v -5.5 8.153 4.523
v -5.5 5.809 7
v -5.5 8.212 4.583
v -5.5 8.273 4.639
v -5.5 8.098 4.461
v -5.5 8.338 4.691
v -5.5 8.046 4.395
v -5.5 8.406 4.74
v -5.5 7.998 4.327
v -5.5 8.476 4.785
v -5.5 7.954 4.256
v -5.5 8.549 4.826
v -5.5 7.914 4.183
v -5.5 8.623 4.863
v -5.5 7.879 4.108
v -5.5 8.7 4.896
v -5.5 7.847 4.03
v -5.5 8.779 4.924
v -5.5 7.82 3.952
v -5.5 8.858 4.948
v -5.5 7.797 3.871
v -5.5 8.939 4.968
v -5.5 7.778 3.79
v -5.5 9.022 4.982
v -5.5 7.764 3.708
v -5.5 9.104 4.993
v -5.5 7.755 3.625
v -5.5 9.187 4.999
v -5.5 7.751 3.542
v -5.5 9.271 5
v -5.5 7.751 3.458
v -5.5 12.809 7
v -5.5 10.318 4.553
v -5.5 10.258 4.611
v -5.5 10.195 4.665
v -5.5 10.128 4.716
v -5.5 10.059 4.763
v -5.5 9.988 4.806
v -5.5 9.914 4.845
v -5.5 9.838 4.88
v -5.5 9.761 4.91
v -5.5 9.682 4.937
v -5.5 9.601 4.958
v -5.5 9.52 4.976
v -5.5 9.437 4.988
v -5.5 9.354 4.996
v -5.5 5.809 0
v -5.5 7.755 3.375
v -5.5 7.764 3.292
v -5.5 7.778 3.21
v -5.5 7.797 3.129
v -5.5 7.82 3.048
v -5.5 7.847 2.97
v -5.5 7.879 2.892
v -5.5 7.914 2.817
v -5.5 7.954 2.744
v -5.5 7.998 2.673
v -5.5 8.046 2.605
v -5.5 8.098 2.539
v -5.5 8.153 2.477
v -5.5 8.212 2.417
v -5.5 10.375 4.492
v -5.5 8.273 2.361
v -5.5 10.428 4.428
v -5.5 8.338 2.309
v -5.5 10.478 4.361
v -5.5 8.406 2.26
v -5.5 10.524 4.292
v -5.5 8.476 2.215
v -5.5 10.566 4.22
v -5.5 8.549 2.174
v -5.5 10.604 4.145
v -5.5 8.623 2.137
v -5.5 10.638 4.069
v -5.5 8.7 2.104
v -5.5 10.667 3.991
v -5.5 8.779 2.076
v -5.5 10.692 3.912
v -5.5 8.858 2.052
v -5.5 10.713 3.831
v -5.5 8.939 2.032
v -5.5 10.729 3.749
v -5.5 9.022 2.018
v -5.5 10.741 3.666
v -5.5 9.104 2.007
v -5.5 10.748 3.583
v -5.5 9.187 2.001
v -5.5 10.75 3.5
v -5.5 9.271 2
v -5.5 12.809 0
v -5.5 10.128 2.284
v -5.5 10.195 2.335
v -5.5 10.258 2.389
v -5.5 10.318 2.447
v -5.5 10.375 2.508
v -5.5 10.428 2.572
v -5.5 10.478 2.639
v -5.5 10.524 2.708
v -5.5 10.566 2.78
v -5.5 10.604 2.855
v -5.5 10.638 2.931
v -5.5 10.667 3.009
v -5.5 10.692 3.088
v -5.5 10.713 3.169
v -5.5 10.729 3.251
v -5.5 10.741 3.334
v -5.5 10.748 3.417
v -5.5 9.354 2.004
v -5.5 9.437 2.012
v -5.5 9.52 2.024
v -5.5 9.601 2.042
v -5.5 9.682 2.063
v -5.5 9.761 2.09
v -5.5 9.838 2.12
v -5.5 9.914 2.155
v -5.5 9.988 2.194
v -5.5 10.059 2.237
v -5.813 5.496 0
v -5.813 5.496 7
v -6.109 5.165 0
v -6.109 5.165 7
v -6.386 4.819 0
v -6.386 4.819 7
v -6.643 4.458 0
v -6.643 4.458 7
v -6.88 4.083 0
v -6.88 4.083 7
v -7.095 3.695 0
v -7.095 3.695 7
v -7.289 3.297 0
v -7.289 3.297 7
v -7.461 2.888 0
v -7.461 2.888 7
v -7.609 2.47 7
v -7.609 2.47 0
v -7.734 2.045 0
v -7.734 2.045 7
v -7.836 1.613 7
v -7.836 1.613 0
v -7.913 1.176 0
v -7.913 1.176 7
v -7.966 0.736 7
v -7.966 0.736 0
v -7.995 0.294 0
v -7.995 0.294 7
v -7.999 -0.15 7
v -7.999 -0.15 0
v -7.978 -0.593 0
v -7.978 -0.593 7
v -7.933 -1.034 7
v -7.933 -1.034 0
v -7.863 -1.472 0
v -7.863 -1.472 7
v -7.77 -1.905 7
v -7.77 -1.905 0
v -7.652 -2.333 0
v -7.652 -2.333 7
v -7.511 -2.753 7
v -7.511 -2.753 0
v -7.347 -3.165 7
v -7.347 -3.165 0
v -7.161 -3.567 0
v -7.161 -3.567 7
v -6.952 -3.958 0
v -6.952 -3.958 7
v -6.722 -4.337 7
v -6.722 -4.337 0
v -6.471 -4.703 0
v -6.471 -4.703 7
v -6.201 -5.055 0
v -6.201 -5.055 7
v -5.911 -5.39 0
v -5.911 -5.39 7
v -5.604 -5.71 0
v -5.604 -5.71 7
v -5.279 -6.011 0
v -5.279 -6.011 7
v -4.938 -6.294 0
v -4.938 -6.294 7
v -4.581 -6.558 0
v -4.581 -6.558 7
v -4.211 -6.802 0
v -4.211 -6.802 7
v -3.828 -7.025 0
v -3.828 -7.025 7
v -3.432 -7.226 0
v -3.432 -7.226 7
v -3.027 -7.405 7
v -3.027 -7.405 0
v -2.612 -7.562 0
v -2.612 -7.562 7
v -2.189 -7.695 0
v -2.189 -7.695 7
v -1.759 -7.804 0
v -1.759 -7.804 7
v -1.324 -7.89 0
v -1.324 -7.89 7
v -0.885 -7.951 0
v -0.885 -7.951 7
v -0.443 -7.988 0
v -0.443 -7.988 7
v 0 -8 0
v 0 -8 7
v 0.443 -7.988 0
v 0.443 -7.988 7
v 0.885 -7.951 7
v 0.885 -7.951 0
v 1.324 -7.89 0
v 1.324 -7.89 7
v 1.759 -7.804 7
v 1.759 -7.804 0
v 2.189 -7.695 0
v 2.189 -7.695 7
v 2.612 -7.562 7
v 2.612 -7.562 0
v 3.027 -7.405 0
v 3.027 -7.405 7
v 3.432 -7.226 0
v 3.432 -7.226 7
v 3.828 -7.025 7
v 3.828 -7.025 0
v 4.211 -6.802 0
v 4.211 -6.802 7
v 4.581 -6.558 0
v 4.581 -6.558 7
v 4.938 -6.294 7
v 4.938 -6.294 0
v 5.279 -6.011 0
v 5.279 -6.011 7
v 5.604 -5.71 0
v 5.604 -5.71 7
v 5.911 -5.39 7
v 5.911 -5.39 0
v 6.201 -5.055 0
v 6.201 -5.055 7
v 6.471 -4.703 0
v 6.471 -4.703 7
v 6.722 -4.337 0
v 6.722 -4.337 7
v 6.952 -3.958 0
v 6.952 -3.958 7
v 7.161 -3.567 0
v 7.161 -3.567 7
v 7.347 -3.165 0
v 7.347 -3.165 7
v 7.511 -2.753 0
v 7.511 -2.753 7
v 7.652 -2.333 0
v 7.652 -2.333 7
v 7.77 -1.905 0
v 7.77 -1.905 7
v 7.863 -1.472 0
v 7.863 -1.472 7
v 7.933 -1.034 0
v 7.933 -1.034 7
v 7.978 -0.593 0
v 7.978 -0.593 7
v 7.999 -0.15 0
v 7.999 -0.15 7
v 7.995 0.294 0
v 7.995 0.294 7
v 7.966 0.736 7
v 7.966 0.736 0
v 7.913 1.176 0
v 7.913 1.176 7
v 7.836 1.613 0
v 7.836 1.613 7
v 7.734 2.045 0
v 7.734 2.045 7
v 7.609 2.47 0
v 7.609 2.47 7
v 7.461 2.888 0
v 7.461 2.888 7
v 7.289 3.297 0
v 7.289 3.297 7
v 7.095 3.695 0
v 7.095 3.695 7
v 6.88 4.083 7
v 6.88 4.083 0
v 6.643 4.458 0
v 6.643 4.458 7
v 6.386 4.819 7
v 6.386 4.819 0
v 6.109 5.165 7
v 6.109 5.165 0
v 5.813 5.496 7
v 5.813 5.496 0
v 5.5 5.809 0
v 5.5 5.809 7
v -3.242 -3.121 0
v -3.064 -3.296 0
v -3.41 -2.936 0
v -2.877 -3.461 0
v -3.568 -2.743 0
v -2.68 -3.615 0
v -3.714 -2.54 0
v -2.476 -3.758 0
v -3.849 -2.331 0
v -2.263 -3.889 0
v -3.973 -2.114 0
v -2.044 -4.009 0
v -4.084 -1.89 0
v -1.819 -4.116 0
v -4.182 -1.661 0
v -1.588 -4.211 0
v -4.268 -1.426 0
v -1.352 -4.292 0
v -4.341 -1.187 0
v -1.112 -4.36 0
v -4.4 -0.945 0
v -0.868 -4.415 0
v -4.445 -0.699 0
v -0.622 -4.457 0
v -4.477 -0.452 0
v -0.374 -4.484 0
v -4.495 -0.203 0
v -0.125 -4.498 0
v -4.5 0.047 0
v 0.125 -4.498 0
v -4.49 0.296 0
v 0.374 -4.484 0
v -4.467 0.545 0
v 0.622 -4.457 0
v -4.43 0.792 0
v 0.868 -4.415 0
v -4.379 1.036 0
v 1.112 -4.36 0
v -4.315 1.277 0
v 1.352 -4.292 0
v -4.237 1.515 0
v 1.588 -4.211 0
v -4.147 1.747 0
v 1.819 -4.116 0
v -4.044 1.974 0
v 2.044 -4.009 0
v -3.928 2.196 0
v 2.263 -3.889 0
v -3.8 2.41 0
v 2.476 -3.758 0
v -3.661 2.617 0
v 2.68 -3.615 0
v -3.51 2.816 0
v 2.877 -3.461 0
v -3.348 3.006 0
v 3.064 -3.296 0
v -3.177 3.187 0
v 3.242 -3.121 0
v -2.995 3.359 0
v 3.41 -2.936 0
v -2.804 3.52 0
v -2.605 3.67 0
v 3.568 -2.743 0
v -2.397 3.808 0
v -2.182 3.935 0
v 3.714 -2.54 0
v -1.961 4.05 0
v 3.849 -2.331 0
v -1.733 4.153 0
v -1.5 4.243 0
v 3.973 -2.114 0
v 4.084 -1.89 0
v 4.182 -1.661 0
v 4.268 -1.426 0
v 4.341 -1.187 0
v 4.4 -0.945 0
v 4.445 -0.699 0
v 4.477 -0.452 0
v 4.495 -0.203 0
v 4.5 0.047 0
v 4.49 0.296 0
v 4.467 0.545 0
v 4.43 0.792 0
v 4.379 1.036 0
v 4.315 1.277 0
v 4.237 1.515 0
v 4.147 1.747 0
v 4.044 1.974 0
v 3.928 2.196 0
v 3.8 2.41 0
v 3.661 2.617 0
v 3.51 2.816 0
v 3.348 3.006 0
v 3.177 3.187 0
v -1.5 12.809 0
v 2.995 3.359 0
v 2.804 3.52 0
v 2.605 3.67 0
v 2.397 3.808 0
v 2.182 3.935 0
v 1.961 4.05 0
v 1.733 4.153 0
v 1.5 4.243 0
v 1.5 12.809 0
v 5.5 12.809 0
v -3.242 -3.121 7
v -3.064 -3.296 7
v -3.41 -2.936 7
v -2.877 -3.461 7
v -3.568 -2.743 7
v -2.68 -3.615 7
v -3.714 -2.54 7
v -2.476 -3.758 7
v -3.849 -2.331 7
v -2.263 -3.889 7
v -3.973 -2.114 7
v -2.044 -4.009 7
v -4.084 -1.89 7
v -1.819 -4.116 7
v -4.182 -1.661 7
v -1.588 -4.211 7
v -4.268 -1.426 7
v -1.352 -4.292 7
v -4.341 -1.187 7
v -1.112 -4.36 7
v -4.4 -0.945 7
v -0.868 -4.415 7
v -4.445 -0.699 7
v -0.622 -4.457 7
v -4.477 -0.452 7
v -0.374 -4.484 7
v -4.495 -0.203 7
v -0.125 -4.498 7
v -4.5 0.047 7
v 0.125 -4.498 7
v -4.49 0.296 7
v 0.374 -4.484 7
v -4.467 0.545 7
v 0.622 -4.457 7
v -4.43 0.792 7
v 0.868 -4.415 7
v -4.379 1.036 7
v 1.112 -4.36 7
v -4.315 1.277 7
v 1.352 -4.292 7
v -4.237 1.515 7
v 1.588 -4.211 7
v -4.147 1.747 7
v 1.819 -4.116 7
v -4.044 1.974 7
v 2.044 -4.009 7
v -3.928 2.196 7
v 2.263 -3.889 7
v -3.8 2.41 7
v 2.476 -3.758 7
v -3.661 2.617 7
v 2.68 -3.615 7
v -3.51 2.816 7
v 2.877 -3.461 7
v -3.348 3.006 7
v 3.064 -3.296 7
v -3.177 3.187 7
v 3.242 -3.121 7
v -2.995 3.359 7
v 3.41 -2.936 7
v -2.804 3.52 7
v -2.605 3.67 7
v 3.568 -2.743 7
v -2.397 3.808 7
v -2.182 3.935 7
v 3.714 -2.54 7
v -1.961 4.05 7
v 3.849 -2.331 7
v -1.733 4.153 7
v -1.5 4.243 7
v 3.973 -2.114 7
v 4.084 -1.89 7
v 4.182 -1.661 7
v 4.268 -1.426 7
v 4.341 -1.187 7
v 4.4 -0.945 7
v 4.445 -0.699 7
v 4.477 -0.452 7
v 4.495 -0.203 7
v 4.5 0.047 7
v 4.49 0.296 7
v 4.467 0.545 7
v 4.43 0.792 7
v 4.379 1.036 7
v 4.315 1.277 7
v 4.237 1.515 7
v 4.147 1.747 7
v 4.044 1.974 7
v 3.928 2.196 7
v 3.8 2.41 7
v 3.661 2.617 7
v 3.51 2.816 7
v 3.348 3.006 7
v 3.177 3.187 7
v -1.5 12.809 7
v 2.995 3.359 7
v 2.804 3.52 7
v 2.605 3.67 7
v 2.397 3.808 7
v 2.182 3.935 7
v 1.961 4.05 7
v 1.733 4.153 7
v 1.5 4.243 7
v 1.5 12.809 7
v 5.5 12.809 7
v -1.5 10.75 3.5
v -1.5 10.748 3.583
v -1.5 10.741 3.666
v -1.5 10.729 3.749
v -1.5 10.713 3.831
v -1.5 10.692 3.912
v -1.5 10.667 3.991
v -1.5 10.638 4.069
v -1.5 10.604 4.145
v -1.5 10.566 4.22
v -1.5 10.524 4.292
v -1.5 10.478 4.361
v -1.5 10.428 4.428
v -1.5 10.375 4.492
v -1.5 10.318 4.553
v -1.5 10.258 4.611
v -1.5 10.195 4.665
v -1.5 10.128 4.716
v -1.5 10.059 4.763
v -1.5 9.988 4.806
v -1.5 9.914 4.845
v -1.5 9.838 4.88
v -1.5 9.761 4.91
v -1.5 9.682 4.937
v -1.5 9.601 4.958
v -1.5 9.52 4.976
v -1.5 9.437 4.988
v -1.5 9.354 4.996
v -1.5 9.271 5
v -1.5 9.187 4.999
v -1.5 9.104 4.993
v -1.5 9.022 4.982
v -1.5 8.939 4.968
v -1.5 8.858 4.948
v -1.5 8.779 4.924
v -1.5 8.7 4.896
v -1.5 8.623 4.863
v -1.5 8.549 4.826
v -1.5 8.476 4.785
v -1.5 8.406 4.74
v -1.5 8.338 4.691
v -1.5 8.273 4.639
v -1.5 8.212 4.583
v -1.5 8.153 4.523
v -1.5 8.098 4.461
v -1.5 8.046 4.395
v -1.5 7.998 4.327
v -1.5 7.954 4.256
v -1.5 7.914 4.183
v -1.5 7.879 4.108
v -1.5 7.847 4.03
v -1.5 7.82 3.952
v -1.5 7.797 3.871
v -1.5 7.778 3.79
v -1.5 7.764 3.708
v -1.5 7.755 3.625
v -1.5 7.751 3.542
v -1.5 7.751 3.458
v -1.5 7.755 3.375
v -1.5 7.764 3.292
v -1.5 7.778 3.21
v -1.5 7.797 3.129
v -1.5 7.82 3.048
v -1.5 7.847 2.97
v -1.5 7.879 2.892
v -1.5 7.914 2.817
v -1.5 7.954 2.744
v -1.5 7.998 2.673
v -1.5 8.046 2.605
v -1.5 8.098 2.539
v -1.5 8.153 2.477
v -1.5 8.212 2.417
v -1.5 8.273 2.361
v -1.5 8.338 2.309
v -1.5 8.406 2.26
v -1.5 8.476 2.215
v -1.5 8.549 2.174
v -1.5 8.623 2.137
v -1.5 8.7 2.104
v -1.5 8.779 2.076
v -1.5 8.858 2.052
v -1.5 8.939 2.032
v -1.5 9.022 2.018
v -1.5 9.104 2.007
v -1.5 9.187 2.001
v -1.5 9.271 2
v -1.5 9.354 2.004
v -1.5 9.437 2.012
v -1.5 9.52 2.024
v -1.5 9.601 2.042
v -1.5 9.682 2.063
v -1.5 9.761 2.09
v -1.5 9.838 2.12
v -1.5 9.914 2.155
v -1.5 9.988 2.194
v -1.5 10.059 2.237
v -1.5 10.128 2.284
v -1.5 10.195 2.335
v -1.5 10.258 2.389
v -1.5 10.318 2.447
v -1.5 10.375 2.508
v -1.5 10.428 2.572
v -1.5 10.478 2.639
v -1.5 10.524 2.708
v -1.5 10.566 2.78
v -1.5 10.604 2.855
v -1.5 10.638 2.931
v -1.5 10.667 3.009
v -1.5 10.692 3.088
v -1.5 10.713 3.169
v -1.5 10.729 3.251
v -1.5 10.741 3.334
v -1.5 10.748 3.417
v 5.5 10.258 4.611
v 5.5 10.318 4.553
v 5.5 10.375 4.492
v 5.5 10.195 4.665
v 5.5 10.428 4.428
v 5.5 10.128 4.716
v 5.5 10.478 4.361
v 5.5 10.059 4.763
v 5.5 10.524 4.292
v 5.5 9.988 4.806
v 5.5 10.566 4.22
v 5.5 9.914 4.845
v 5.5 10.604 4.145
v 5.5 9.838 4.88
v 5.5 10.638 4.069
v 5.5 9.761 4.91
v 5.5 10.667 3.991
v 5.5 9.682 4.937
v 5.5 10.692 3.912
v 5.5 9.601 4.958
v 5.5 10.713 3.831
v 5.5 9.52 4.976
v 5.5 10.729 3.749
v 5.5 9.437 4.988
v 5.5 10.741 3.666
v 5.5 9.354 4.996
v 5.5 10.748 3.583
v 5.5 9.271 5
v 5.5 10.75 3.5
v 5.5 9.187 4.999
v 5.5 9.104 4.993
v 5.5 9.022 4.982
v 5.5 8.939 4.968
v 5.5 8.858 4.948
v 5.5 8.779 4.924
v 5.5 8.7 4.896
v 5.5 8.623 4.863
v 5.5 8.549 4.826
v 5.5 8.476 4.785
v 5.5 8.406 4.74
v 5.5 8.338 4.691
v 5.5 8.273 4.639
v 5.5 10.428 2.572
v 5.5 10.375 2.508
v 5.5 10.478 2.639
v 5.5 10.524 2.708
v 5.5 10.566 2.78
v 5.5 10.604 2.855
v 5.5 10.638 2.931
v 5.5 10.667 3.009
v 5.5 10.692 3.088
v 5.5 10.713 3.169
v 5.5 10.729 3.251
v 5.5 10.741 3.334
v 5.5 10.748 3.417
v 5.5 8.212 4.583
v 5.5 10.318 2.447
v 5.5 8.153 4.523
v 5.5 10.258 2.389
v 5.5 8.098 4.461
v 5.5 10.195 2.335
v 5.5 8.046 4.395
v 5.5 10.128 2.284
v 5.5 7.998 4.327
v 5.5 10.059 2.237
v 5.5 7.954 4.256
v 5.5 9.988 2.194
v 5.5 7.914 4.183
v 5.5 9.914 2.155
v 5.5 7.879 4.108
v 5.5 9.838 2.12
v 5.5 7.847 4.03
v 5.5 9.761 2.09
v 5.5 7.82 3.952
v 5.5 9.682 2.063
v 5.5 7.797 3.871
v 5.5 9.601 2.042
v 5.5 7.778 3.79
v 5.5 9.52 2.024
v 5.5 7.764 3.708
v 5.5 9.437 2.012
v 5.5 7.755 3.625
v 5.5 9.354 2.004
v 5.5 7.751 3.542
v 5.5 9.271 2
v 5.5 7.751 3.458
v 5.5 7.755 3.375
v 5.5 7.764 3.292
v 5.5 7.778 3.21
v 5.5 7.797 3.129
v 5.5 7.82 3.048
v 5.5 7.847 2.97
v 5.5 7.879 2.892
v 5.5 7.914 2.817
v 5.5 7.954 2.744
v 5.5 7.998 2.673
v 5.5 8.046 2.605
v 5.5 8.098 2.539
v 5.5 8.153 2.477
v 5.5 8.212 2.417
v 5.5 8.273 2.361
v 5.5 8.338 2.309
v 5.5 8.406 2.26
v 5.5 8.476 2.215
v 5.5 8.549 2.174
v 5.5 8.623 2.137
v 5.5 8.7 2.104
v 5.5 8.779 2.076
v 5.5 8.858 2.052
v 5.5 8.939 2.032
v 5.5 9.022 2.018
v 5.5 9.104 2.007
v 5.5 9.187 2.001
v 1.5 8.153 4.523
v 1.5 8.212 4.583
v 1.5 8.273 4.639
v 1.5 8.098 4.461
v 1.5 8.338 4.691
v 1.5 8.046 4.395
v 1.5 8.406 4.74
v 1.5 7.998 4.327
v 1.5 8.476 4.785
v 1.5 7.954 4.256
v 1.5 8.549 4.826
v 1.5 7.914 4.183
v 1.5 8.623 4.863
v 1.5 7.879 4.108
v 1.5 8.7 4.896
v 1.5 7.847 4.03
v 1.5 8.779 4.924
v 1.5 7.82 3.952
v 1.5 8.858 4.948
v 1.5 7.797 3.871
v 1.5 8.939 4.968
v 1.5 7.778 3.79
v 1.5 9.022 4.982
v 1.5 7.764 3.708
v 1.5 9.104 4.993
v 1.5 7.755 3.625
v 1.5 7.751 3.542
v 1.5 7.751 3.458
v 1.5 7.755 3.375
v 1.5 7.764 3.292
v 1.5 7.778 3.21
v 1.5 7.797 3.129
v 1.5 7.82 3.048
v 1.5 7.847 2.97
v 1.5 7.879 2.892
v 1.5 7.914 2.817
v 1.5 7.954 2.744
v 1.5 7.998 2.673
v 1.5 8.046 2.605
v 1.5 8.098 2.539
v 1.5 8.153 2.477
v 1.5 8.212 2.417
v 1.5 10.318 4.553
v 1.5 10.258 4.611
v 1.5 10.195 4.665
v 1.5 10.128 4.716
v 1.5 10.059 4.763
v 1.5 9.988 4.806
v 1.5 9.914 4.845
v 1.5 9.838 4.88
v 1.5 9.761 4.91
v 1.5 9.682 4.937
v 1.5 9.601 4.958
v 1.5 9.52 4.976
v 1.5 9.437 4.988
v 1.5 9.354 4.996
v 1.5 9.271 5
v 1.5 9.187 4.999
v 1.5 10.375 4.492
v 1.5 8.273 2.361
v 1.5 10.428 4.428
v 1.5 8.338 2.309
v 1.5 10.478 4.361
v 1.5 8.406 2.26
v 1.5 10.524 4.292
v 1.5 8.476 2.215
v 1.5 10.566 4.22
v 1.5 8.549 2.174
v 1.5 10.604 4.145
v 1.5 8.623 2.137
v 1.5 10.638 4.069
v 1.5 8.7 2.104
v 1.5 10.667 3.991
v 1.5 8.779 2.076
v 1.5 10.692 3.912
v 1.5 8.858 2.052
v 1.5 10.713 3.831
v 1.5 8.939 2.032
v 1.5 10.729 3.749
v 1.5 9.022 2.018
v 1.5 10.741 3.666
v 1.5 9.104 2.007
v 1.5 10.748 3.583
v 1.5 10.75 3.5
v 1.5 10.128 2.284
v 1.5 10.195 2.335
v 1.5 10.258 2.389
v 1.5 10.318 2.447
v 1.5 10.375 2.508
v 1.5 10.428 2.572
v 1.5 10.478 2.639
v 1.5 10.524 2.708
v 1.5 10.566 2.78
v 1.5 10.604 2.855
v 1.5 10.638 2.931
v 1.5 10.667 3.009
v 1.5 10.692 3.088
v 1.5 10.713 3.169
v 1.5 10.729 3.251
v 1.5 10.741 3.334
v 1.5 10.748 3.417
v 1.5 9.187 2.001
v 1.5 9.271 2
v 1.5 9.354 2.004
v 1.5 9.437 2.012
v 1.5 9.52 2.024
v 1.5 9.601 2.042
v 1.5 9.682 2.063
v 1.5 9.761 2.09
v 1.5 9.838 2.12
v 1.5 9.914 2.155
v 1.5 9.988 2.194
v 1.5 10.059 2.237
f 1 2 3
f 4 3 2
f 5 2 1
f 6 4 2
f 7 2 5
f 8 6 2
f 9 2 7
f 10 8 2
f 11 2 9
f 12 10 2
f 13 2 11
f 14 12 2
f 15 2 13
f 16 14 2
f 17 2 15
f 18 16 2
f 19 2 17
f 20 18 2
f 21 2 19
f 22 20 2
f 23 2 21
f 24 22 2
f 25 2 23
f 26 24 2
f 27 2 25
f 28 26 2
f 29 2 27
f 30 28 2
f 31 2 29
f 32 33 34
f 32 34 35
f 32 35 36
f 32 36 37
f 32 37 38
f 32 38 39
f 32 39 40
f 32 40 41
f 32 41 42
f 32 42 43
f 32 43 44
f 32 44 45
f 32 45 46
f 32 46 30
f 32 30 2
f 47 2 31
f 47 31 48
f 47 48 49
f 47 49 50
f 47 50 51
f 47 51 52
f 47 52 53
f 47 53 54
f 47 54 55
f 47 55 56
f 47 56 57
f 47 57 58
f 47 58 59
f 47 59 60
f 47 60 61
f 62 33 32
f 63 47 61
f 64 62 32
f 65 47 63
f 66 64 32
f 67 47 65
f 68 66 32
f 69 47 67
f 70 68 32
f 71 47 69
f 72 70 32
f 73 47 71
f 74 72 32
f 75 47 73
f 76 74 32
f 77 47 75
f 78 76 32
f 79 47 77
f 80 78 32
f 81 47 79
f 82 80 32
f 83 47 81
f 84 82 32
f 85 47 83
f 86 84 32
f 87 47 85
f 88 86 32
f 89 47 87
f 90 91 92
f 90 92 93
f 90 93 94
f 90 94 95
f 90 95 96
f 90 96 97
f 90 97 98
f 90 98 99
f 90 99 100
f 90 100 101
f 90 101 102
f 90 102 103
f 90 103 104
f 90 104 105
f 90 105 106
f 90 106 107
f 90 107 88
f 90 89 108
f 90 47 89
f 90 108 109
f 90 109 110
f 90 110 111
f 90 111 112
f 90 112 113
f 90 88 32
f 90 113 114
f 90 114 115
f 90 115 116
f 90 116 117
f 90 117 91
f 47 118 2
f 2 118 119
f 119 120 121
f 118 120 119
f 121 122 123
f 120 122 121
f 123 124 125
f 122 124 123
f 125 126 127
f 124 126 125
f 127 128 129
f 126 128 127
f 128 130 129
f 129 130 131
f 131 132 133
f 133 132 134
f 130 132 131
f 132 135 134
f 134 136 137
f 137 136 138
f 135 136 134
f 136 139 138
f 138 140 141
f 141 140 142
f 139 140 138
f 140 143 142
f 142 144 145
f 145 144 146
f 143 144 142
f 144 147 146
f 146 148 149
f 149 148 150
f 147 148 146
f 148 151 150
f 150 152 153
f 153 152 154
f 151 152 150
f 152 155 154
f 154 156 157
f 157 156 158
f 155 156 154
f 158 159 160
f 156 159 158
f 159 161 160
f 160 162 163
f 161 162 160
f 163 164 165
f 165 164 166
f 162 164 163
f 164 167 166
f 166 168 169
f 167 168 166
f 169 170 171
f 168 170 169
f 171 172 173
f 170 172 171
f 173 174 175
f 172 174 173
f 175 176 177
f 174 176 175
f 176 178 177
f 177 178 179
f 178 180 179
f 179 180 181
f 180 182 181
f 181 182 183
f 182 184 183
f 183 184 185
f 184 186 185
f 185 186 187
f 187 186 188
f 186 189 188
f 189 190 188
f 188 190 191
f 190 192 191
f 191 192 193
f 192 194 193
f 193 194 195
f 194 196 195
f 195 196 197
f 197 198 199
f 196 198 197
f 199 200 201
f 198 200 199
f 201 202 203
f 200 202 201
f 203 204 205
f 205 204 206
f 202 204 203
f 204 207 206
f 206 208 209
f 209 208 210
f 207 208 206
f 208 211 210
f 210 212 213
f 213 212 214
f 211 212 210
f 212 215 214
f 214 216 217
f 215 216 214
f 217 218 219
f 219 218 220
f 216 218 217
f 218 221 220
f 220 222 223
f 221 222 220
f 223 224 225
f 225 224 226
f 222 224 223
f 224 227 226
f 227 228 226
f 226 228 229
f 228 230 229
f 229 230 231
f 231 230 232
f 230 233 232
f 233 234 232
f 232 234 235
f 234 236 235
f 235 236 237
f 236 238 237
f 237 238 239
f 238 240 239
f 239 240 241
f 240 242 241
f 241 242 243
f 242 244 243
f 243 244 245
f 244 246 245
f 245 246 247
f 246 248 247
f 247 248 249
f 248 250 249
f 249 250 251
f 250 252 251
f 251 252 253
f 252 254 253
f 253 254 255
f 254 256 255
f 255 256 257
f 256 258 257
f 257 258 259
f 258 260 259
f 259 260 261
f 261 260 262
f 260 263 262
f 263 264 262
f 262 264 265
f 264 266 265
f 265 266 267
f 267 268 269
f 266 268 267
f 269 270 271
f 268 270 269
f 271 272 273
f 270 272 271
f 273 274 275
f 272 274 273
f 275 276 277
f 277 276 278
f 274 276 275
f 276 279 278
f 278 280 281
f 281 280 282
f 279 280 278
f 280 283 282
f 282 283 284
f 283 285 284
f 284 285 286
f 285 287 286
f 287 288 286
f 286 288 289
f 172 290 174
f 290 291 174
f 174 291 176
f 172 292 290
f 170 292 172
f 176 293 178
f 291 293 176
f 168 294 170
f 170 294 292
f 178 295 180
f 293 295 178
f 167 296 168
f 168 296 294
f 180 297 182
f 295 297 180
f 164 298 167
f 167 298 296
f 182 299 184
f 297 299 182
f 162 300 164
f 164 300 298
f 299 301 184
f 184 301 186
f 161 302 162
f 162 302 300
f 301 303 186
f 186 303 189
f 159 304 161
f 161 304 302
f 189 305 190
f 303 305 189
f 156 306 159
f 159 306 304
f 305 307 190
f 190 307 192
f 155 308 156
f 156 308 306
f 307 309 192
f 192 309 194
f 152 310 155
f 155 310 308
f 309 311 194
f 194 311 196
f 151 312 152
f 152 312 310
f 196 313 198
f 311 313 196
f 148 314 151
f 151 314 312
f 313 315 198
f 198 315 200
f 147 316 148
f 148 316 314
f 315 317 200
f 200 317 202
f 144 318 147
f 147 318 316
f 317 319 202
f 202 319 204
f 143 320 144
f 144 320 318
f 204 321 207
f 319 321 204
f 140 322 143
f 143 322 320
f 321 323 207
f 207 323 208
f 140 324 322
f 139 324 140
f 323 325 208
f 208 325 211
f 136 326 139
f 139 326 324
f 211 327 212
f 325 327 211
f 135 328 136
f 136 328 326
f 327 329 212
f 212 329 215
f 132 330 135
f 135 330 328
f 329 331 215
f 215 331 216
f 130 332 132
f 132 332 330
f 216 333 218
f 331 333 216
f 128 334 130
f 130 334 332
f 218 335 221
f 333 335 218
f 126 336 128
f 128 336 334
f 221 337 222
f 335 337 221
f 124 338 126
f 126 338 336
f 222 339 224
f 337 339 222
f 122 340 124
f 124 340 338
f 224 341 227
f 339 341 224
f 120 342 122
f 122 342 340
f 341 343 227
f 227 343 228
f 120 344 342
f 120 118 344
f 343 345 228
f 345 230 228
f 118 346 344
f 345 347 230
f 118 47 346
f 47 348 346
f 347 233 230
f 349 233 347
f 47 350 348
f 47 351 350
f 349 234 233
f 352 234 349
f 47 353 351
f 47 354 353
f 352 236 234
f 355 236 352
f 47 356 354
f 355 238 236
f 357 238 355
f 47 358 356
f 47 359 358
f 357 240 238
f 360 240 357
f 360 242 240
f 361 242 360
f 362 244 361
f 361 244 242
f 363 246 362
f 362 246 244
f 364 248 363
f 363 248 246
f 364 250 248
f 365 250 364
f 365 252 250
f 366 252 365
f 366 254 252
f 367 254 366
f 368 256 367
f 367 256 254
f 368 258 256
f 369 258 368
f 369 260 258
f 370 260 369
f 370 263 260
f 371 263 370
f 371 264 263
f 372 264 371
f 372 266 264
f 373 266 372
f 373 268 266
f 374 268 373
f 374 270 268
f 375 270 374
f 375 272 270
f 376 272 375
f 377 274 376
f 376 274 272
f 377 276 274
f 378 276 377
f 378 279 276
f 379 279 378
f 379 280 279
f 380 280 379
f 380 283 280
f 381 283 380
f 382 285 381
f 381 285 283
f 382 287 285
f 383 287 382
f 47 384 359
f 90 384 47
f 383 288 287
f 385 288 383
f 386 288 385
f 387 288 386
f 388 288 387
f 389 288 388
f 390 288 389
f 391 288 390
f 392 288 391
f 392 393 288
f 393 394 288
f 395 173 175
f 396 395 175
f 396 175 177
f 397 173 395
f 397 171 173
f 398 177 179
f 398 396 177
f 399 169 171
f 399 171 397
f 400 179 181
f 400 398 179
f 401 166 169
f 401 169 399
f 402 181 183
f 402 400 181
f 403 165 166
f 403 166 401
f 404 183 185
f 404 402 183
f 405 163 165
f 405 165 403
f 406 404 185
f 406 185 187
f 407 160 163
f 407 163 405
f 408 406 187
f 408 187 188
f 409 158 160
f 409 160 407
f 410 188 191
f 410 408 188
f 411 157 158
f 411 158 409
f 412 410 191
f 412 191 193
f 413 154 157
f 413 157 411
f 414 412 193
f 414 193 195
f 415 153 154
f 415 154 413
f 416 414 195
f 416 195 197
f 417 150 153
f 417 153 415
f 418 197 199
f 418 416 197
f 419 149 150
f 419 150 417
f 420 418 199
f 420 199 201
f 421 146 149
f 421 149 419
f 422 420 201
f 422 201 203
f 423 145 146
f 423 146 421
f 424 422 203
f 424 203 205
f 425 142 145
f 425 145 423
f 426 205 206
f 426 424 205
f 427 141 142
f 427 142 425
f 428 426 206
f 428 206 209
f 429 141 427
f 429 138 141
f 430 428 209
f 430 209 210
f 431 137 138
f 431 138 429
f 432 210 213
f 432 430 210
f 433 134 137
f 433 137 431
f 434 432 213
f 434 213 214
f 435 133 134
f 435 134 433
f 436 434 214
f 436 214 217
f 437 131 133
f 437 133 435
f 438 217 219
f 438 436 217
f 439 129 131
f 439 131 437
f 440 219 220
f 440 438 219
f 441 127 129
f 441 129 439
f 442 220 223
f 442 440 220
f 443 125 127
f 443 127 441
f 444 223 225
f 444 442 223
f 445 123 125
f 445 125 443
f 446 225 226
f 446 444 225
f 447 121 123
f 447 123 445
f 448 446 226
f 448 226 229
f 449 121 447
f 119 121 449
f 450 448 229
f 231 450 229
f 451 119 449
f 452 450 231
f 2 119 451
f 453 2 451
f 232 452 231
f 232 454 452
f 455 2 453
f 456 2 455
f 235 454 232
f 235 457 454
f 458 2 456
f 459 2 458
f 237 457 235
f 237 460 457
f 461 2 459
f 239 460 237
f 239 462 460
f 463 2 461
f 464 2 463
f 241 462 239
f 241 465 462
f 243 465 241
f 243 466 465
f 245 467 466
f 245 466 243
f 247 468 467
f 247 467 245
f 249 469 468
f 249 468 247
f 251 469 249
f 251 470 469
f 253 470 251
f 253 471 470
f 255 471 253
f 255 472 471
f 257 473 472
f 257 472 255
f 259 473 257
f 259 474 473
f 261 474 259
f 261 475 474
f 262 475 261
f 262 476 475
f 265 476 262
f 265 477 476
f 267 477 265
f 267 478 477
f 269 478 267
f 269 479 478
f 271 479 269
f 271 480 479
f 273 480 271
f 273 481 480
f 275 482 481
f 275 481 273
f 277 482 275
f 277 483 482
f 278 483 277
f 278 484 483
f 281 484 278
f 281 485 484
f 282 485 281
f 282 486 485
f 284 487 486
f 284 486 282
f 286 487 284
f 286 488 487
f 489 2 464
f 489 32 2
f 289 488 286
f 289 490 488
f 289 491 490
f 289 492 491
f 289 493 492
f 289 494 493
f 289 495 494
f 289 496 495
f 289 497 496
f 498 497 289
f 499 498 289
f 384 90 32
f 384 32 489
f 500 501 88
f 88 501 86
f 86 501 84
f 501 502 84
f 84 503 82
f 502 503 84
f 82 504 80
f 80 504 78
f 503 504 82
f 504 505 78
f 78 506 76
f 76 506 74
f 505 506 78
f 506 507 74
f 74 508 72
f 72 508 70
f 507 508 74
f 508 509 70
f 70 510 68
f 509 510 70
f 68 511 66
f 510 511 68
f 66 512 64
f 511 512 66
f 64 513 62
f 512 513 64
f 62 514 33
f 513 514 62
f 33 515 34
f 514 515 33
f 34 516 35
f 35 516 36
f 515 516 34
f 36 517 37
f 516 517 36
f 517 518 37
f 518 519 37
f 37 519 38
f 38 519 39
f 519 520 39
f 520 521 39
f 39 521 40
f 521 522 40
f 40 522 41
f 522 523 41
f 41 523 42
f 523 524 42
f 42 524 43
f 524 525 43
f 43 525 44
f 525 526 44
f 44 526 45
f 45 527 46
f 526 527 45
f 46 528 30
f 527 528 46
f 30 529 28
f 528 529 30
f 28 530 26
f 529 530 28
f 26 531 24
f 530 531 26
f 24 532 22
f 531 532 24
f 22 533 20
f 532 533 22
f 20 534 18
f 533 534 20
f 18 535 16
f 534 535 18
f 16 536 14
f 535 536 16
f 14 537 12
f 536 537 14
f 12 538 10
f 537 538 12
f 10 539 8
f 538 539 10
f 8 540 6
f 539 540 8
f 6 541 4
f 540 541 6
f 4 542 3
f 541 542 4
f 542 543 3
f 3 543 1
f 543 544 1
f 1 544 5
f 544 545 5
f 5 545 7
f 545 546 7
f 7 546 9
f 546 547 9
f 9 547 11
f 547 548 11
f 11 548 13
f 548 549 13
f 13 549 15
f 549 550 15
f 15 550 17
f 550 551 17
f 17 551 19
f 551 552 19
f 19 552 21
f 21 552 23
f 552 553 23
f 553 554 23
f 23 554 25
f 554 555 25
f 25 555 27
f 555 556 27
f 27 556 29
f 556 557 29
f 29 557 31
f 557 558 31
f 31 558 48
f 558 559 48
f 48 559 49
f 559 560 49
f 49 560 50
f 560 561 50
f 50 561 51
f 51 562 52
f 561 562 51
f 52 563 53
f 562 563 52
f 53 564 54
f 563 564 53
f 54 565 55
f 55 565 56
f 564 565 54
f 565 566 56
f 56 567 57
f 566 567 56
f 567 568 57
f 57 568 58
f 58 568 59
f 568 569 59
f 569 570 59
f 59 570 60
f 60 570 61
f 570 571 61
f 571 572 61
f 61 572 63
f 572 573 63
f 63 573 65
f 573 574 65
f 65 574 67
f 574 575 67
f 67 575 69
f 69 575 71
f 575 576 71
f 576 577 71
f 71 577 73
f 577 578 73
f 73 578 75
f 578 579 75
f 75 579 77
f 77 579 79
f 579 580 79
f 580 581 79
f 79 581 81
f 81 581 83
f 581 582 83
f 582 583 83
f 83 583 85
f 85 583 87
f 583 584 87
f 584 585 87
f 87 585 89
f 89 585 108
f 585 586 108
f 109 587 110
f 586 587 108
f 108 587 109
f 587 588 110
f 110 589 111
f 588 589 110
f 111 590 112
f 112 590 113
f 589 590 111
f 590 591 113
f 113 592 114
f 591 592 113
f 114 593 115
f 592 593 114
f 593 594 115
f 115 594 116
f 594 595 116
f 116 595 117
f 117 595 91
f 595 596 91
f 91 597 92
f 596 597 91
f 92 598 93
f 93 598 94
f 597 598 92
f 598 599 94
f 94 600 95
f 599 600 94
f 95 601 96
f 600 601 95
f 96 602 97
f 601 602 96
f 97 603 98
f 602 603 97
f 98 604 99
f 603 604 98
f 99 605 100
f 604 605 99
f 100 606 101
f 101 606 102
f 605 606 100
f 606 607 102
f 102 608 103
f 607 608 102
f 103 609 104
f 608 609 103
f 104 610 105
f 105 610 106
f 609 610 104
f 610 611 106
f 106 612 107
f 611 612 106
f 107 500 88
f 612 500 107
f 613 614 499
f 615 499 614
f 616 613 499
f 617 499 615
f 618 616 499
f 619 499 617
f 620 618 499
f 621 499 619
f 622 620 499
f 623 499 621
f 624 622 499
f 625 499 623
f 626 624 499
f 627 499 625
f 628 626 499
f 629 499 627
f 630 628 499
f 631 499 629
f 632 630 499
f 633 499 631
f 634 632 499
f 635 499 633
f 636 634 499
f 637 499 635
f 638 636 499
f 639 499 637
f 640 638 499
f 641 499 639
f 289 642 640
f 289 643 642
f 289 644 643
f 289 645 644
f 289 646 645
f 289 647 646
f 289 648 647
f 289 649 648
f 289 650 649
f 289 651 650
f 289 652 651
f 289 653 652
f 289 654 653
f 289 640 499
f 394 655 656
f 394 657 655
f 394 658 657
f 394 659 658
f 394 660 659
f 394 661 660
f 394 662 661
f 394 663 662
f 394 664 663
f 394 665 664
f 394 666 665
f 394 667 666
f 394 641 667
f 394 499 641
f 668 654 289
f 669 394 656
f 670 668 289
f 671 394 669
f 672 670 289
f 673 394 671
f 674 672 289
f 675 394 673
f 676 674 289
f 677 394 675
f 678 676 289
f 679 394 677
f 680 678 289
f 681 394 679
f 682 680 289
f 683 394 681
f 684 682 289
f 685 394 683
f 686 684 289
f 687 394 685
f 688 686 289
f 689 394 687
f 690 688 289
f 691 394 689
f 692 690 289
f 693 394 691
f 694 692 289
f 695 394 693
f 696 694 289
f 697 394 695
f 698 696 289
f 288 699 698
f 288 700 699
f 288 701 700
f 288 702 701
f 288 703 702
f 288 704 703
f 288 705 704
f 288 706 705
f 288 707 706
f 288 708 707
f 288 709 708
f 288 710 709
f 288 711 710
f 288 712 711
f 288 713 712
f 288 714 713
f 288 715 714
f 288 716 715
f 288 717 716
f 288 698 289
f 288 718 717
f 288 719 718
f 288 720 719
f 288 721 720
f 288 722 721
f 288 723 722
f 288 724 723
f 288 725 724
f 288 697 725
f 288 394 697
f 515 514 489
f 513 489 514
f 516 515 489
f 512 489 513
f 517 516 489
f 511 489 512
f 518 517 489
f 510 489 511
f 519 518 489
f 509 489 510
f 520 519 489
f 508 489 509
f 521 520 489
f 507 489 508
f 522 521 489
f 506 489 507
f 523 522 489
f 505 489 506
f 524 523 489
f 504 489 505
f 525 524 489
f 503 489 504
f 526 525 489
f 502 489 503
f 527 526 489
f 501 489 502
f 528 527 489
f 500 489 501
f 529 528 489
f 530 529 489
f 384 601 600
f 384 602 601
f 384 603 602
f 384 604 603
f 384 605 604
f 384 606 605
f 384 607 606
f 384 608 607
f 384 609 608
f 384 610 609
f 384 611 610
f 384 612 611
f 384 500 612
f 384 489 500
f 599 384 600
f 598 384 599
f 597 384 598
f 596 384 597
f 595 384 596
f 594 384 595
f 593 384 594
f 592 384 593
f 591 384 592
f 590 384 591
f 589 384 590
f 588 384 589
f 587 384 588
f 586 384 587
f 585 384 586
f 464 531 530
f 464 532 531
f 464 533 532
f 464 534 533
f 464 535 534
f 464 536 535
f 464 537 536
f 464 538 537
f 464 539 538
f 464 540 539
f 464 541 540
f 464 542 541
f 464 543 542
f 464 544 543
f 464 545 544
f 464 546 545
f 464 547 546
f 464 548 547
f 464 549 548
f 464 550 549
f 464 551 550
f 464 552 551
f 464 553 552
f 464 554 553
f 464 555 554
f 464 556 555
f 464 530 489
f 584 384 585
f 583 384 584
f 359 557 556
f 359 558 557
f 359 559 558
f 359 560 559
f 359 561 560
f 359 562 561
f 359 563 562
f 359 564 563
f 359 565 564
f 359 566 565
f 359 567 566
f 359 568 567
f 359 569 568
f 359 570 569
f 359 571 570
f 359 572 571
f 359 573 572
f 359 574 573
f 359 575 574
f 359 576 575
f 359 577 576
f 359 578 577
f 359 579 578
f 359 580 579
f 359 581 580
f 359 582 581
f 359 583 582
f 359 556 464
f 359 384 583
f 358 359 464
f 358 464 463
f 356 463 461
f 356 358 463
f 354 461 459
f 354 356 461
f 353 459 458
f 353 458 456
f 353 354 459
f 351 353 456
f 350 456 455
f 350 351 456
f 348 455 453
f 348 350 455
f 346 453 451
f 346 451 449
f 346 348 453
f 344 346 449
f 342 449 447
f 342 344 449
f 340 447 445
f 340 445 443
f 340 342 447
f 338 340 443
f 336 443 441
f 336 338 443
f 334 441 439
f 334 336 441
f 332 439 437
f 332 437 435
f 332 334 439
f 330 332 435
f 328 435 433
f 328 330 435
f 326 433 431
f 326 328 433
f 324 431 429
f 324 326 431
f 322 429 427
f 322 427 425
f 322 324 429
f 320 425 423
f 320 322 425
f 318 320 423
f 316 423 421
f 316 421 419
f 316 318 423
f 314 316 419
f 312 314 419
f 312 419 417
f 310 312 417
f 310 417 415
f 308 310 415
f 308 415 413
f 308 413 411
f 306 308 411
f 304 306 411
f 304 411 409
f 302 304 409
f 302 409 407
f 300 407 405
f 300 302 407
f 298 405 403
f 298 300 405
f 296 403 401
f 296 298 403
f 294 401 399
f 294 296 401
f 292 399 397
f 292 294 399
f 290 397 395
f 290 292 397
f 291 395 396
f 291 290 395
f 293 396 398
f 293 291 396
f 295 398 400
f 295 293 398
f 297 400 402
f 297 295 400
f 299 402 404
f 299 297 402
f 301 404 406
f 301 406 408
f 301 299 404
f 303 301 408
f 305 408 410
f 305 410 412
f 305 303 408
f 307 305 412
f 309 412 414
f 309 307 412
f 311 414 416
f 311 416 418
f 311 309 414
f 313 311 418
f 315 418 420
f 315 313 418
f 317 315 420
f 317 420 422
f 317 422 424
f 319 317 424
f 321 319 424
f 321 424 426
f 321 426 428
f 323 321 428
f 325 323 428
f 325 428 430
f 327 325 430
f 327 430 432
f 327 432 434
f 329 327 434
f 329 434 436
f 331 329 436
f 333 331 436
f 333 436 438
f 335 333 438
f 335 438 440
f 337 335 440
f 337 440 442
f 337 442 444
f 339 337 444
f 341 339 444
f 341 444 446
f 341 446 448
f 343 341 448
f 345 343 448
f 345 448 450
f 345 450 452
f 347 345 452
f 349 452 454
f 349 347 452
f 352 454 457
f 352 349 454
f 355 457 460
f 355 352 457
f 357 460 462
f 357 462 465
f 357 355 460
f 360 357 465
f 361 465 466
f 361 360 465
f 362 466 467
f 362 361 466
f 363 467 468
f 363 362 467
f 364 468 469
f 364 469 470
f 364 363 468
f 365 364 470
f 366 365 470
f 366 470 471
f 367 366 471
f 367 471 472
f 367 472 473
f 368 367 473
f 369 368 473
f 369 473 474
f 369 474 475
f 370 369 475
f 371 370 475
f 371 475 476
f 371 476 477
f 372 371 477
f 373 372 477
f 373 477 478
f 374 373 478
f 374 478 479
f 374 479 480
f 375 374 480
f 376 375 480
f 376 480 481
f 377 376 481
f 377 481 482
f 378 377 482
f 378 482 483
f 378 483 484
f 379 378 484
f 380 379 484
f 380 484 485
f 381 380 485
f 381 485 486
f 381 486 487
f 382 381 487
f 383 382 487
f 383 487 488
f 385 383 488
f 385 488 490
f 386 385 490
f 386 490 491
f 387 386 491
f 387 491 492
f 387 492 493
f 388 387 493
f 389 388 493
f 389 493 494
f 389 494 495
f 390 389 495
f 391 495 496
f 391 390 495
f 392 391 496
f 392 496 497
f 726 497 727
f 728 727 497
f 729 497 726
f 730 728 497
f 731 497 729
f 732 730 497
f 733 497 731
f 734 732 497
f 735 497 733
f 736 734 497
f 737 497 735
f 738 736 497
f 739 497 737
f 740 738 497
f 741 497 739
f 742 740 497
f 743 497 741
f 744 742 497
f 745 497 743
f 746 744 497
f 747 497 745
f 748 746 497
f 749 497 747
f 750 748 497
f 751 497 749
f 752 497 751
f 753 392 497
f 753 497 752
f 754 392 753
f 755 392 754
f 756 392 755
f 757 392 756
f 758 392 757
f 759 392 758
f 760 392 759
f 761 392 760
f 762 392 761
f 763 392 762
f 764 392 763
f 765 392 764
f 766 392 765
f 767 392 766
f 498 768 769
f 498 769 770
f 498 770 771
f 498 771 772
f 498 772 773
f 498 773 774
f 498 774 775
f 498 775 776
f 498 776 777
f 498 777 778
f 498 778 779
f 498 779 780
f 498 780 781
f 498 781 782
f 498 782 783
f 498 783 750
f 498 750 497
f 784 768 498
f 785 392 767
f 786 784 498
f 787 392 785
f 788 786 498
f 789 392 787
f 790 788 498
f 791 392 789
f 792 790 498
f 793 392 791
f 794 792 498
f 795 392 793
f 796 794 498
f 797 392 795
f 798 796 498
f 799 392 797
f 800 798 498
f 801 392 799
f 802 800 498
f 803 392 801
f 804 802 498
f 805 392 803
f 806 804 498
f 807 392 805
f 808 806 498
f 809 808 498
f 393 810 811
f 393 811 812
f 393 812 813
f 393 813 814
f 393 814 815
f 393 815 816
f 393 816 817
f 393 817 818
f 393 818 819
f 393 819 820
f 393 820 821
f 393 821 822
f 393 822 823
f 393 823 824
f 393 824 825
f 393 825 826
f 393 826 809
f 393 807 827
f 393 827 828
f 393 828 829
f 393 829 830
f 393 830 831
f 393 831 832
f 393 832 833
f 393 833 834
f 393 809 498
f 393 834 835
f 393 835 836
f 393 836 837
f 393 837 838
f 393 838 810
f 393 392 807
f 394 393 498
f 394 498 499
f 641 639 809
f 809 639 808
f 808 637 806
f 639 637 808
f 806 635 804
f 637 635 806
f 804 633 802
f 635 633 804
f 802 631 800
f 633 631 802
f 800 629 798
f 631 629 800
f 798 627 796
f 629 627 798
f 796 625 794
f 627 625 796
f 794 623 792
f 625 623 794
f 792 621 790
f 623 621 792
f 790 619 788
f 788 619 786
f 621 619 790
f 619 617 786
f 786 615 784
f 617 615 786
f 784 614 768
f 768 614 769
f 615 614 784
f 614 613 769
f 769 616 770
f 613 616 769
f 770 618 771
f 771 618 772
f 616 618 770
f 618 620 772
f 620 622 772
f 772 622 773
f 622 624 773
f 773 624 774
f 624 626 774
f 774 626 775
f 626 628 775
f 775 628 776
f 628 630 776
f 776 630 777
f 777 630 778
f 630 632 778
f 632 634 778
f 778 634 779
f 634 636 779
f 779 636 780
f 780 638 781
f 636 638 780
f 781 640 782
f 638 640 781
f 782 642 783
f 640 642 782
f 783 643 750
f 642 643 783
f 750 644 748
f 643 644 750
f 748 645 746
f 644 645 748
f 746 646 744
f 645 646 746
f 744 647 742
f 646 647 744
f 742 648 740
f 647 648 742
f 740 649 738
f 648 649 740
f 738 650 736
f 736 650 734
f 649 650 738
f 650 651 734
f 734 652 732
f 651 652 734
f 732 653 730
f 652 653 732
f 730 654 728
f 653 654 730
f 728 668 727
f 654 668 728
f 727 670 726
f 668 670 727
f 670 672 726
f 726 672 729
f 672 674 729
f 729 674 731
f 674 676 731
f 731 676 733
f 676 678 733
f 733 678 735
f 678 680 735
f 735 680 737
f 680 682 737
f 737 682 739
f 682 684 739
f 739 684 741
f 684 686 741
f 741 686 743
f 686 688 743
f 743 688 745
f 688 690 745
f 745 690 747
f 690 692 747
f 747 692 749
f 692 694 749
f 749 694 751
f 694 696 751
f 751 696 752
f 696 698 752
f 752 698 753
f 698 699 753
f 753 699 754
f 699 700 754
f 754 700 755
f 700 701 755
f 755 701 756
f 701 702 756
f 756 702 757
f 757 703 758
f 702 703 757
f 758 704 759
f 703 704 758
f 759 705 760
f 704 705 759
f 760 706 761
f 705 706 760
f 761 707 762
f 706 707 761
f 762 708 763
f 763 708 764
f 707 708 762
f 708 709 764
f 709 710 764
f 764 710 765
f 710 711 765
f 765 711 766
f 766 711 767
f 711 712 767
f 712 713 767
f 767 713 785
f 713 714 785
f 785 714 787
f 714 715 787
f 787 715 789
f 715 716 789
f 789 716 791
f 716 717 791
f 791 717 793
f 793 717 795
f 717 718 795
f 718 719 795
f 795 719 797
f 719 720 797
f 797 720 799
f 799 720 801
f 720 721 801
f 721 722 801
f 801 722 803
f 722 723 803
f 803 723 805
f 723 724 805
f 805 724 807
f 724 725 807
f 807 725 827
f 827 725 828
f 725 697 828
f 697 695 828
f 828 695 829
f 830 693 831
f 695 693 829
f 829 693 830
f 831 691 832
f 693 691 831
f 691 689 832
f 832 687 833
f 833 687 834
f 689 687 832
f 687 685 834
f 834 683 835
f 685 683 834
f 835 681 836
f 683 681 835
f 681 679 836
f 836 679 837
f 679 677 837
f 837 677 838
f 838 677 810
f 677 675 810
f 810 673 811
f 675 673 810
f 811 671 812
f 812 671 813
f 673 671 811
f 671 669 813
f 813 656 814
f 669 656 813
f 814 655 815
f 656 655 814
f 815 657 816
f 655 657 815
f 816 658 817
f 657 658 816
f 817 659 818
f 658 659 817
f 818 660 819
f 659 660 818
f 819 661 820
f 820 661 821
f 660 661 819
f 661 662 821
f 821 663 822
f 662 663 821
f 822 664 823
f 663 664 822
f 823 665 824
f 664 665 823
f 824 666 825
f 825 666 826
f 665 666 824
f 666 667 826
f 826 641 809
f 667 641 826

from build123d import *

# Parameters (mm, degrees)
PAD_DEPTH    = 7
SKETCH001_R  = 1.5
POCKET_DEPTH = 13.501


with BuildPart() as part:
    # Sketch → Pad (new body)
    with BuildSketch(Plane.XY):
        with BuildLine():
            ThreePointArc((-1.5, 4.242641), (0, -4.5), (1.5, 4.242641))
            Line((1.5, 4.242641), (1.5, 12.809475))
            Line((1.5, 12.809475), (5.5, 12.809475))
            Line((5.5, 12.809475), (5.5, 5.809475))
            ThreePointArc((-5.5, 5.809475), (0, -8), (5.5, 5.809475))
            Line((-5.5, 5.809475), (-5.5, 12.809475))
            Line((-5.5, 12.809475), (-1.5, 12.809475))
            Line((-1.5, 12.809475), (-1.5, 4.242641))
        make_face()
    extrude(amount=PAD_DEPTH)

    # Sketch001 (on Face7 of Pad) → Pocket (cut, through all)
    with BuildSketch(Plane.YZ.offset(5.5)):
        with Locations((9.25, 3.5)):
            Circle(SKETCH001_R)
    extrude(amount=-POCKET_DEPTH, mode=Mode.SUBTRACT)


solid = part.part
